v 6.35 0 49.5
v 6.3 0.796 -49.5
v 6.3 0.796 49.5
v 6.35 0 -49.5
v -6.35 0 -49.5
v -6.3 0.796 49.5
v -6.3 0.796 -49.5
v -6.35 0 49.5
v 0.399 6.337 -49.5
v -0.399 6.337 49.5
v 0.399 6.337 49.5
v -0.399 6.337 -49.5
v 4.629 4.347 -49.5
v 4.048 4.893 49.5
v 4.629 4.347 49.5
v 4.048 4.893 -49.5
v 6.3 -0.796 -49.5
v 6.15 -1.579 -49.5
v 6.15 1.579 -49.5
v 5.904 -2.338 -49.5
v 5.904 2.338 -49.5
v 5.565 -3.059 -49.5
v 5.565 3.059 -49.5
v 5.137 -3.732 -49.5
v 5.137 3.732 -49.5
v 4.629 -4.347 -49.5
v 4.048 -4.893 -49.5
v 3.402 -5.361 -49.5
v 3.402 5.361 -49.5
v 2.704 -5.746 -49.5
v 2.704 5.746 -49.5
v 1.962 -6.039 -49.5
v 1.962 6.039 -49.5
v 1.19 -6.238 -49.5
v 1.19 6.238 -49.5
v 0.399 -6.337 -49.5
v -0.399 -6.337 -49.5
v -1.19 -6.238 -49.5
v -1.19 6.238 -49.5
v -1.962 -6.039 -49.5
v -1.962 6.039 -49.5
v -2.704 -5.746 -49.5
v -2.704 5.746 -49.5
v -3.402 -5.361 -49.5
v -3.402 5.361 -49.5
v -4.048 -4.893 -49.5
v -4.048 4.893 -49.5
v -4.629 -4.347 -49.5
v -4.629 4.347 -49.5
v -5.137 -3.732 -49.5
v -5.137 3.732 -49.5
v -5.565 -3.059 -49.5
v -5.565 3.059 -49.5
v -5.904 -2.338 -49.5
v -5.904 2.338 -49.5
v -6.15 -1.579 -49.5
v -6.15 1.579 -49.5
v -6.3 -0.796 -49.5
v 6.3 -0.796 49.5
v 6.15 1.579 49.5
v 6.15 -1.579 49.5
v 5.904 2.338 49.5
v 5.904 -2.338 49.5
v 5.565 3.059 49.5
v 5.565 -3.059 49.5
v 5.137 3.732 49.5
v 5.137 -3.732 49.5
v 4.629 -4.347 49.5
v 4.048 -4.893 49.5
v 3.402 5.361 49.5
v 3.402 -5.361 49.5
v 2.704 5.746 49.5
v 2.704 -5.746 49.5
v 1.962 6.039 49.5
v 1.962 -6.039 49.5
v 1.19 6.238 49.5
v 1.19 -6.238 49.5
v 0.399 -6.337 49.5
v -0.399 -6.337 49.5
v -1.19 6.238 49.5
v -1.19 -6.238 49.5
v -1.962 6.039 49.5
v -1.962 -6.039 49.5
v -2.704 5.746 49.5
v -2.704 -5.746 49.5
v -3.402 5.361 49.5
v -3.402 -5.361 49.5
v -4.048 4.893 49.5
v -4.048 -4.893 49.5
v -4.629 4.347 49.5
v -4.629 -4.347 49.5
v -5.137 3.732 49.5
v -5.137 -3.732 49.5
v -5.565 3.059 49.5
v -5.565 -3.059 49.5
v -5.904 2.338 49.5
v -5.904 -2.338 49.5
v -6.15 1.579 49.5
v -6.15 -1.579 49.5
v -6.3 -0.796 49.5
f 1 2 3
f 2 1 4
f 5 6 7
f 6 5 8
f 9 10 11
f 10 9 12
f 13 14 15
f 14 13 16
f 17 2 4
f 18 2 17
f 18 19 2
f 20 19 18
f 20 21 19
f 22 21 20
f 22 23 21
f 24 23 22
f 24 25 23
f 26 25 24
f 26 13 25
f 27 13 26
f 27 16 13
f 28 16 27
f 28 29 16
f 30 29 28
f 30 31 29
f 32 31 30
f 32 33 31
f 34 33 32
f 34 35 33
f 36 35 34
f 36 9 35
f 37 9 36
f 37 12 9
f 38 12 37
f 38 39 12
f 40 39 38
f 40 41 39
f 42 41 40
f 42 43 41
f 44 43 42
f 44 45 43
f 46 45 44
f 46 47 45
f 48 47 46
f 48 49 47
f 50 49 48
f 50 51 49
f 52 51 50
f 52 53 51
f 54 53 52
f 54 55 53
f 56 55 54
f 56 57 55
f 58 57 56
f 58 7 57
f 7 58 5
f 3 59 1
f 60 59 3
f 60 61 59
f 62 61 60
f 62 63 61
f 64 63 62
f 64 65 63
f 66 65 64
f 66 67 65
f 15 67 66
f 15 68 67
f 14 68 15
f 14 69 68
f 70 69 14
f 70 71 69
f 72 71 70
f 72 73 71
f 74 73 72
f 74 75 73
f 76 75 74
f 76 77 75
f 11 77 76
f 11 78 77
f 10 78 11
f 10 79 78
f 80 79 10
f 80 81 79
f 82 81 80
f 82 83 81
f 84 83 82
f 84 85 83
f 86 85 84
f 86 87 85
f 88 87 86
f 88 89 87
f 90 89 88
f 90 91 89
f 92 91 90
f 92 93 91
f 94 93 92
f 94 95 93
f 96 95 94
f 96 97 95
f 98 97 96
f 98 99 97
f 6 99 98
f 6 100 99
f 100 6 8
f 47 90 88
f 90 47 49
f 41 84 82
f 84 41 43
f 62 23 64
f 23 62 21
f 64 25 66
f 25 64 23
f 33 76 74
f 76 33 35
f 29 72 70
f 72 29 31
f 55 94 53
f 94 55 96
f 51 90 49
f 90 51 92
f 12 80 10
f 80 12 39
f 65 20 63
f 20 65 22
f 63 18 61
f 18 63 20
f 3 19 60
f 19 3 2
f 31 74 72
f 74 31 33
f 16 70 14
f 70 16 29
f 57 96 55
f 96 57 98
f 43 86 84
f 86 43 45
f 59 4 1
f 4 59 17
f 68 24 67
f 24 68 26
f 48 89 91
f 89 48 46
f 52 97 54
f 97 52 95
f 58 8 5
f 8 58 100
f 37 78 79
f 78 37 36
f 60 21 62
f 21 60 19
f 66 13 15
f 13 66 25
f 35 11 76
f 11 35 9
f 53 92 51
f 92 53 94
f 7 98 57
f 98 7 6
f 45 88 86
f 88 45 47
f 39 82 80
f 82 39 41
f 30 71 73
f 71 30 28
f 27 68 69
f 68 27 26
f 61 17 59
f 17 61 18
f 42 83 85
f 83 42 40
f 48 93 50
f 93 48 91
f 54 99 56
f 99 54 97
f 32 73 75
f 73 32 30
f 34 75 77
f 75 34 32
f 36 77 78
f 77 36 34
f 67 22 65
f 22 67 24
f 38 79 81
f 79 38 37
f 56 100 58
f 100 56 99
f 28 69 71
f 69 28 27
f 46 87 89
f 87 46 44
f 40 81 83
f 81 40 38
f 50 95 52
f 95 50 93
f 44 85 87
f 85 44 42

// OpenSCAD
$fn = 50;


difference() {
	union() {
		translate(v = [0, 0, -49.5000000000]) {
			cylinder(h = 99, r = 6.3500000000);
		}
	}
	union() {
		translate(v = [0, 0, -100.0000000000]) {
			cylinder(h = 200, r = 0);
		}
	}
}
